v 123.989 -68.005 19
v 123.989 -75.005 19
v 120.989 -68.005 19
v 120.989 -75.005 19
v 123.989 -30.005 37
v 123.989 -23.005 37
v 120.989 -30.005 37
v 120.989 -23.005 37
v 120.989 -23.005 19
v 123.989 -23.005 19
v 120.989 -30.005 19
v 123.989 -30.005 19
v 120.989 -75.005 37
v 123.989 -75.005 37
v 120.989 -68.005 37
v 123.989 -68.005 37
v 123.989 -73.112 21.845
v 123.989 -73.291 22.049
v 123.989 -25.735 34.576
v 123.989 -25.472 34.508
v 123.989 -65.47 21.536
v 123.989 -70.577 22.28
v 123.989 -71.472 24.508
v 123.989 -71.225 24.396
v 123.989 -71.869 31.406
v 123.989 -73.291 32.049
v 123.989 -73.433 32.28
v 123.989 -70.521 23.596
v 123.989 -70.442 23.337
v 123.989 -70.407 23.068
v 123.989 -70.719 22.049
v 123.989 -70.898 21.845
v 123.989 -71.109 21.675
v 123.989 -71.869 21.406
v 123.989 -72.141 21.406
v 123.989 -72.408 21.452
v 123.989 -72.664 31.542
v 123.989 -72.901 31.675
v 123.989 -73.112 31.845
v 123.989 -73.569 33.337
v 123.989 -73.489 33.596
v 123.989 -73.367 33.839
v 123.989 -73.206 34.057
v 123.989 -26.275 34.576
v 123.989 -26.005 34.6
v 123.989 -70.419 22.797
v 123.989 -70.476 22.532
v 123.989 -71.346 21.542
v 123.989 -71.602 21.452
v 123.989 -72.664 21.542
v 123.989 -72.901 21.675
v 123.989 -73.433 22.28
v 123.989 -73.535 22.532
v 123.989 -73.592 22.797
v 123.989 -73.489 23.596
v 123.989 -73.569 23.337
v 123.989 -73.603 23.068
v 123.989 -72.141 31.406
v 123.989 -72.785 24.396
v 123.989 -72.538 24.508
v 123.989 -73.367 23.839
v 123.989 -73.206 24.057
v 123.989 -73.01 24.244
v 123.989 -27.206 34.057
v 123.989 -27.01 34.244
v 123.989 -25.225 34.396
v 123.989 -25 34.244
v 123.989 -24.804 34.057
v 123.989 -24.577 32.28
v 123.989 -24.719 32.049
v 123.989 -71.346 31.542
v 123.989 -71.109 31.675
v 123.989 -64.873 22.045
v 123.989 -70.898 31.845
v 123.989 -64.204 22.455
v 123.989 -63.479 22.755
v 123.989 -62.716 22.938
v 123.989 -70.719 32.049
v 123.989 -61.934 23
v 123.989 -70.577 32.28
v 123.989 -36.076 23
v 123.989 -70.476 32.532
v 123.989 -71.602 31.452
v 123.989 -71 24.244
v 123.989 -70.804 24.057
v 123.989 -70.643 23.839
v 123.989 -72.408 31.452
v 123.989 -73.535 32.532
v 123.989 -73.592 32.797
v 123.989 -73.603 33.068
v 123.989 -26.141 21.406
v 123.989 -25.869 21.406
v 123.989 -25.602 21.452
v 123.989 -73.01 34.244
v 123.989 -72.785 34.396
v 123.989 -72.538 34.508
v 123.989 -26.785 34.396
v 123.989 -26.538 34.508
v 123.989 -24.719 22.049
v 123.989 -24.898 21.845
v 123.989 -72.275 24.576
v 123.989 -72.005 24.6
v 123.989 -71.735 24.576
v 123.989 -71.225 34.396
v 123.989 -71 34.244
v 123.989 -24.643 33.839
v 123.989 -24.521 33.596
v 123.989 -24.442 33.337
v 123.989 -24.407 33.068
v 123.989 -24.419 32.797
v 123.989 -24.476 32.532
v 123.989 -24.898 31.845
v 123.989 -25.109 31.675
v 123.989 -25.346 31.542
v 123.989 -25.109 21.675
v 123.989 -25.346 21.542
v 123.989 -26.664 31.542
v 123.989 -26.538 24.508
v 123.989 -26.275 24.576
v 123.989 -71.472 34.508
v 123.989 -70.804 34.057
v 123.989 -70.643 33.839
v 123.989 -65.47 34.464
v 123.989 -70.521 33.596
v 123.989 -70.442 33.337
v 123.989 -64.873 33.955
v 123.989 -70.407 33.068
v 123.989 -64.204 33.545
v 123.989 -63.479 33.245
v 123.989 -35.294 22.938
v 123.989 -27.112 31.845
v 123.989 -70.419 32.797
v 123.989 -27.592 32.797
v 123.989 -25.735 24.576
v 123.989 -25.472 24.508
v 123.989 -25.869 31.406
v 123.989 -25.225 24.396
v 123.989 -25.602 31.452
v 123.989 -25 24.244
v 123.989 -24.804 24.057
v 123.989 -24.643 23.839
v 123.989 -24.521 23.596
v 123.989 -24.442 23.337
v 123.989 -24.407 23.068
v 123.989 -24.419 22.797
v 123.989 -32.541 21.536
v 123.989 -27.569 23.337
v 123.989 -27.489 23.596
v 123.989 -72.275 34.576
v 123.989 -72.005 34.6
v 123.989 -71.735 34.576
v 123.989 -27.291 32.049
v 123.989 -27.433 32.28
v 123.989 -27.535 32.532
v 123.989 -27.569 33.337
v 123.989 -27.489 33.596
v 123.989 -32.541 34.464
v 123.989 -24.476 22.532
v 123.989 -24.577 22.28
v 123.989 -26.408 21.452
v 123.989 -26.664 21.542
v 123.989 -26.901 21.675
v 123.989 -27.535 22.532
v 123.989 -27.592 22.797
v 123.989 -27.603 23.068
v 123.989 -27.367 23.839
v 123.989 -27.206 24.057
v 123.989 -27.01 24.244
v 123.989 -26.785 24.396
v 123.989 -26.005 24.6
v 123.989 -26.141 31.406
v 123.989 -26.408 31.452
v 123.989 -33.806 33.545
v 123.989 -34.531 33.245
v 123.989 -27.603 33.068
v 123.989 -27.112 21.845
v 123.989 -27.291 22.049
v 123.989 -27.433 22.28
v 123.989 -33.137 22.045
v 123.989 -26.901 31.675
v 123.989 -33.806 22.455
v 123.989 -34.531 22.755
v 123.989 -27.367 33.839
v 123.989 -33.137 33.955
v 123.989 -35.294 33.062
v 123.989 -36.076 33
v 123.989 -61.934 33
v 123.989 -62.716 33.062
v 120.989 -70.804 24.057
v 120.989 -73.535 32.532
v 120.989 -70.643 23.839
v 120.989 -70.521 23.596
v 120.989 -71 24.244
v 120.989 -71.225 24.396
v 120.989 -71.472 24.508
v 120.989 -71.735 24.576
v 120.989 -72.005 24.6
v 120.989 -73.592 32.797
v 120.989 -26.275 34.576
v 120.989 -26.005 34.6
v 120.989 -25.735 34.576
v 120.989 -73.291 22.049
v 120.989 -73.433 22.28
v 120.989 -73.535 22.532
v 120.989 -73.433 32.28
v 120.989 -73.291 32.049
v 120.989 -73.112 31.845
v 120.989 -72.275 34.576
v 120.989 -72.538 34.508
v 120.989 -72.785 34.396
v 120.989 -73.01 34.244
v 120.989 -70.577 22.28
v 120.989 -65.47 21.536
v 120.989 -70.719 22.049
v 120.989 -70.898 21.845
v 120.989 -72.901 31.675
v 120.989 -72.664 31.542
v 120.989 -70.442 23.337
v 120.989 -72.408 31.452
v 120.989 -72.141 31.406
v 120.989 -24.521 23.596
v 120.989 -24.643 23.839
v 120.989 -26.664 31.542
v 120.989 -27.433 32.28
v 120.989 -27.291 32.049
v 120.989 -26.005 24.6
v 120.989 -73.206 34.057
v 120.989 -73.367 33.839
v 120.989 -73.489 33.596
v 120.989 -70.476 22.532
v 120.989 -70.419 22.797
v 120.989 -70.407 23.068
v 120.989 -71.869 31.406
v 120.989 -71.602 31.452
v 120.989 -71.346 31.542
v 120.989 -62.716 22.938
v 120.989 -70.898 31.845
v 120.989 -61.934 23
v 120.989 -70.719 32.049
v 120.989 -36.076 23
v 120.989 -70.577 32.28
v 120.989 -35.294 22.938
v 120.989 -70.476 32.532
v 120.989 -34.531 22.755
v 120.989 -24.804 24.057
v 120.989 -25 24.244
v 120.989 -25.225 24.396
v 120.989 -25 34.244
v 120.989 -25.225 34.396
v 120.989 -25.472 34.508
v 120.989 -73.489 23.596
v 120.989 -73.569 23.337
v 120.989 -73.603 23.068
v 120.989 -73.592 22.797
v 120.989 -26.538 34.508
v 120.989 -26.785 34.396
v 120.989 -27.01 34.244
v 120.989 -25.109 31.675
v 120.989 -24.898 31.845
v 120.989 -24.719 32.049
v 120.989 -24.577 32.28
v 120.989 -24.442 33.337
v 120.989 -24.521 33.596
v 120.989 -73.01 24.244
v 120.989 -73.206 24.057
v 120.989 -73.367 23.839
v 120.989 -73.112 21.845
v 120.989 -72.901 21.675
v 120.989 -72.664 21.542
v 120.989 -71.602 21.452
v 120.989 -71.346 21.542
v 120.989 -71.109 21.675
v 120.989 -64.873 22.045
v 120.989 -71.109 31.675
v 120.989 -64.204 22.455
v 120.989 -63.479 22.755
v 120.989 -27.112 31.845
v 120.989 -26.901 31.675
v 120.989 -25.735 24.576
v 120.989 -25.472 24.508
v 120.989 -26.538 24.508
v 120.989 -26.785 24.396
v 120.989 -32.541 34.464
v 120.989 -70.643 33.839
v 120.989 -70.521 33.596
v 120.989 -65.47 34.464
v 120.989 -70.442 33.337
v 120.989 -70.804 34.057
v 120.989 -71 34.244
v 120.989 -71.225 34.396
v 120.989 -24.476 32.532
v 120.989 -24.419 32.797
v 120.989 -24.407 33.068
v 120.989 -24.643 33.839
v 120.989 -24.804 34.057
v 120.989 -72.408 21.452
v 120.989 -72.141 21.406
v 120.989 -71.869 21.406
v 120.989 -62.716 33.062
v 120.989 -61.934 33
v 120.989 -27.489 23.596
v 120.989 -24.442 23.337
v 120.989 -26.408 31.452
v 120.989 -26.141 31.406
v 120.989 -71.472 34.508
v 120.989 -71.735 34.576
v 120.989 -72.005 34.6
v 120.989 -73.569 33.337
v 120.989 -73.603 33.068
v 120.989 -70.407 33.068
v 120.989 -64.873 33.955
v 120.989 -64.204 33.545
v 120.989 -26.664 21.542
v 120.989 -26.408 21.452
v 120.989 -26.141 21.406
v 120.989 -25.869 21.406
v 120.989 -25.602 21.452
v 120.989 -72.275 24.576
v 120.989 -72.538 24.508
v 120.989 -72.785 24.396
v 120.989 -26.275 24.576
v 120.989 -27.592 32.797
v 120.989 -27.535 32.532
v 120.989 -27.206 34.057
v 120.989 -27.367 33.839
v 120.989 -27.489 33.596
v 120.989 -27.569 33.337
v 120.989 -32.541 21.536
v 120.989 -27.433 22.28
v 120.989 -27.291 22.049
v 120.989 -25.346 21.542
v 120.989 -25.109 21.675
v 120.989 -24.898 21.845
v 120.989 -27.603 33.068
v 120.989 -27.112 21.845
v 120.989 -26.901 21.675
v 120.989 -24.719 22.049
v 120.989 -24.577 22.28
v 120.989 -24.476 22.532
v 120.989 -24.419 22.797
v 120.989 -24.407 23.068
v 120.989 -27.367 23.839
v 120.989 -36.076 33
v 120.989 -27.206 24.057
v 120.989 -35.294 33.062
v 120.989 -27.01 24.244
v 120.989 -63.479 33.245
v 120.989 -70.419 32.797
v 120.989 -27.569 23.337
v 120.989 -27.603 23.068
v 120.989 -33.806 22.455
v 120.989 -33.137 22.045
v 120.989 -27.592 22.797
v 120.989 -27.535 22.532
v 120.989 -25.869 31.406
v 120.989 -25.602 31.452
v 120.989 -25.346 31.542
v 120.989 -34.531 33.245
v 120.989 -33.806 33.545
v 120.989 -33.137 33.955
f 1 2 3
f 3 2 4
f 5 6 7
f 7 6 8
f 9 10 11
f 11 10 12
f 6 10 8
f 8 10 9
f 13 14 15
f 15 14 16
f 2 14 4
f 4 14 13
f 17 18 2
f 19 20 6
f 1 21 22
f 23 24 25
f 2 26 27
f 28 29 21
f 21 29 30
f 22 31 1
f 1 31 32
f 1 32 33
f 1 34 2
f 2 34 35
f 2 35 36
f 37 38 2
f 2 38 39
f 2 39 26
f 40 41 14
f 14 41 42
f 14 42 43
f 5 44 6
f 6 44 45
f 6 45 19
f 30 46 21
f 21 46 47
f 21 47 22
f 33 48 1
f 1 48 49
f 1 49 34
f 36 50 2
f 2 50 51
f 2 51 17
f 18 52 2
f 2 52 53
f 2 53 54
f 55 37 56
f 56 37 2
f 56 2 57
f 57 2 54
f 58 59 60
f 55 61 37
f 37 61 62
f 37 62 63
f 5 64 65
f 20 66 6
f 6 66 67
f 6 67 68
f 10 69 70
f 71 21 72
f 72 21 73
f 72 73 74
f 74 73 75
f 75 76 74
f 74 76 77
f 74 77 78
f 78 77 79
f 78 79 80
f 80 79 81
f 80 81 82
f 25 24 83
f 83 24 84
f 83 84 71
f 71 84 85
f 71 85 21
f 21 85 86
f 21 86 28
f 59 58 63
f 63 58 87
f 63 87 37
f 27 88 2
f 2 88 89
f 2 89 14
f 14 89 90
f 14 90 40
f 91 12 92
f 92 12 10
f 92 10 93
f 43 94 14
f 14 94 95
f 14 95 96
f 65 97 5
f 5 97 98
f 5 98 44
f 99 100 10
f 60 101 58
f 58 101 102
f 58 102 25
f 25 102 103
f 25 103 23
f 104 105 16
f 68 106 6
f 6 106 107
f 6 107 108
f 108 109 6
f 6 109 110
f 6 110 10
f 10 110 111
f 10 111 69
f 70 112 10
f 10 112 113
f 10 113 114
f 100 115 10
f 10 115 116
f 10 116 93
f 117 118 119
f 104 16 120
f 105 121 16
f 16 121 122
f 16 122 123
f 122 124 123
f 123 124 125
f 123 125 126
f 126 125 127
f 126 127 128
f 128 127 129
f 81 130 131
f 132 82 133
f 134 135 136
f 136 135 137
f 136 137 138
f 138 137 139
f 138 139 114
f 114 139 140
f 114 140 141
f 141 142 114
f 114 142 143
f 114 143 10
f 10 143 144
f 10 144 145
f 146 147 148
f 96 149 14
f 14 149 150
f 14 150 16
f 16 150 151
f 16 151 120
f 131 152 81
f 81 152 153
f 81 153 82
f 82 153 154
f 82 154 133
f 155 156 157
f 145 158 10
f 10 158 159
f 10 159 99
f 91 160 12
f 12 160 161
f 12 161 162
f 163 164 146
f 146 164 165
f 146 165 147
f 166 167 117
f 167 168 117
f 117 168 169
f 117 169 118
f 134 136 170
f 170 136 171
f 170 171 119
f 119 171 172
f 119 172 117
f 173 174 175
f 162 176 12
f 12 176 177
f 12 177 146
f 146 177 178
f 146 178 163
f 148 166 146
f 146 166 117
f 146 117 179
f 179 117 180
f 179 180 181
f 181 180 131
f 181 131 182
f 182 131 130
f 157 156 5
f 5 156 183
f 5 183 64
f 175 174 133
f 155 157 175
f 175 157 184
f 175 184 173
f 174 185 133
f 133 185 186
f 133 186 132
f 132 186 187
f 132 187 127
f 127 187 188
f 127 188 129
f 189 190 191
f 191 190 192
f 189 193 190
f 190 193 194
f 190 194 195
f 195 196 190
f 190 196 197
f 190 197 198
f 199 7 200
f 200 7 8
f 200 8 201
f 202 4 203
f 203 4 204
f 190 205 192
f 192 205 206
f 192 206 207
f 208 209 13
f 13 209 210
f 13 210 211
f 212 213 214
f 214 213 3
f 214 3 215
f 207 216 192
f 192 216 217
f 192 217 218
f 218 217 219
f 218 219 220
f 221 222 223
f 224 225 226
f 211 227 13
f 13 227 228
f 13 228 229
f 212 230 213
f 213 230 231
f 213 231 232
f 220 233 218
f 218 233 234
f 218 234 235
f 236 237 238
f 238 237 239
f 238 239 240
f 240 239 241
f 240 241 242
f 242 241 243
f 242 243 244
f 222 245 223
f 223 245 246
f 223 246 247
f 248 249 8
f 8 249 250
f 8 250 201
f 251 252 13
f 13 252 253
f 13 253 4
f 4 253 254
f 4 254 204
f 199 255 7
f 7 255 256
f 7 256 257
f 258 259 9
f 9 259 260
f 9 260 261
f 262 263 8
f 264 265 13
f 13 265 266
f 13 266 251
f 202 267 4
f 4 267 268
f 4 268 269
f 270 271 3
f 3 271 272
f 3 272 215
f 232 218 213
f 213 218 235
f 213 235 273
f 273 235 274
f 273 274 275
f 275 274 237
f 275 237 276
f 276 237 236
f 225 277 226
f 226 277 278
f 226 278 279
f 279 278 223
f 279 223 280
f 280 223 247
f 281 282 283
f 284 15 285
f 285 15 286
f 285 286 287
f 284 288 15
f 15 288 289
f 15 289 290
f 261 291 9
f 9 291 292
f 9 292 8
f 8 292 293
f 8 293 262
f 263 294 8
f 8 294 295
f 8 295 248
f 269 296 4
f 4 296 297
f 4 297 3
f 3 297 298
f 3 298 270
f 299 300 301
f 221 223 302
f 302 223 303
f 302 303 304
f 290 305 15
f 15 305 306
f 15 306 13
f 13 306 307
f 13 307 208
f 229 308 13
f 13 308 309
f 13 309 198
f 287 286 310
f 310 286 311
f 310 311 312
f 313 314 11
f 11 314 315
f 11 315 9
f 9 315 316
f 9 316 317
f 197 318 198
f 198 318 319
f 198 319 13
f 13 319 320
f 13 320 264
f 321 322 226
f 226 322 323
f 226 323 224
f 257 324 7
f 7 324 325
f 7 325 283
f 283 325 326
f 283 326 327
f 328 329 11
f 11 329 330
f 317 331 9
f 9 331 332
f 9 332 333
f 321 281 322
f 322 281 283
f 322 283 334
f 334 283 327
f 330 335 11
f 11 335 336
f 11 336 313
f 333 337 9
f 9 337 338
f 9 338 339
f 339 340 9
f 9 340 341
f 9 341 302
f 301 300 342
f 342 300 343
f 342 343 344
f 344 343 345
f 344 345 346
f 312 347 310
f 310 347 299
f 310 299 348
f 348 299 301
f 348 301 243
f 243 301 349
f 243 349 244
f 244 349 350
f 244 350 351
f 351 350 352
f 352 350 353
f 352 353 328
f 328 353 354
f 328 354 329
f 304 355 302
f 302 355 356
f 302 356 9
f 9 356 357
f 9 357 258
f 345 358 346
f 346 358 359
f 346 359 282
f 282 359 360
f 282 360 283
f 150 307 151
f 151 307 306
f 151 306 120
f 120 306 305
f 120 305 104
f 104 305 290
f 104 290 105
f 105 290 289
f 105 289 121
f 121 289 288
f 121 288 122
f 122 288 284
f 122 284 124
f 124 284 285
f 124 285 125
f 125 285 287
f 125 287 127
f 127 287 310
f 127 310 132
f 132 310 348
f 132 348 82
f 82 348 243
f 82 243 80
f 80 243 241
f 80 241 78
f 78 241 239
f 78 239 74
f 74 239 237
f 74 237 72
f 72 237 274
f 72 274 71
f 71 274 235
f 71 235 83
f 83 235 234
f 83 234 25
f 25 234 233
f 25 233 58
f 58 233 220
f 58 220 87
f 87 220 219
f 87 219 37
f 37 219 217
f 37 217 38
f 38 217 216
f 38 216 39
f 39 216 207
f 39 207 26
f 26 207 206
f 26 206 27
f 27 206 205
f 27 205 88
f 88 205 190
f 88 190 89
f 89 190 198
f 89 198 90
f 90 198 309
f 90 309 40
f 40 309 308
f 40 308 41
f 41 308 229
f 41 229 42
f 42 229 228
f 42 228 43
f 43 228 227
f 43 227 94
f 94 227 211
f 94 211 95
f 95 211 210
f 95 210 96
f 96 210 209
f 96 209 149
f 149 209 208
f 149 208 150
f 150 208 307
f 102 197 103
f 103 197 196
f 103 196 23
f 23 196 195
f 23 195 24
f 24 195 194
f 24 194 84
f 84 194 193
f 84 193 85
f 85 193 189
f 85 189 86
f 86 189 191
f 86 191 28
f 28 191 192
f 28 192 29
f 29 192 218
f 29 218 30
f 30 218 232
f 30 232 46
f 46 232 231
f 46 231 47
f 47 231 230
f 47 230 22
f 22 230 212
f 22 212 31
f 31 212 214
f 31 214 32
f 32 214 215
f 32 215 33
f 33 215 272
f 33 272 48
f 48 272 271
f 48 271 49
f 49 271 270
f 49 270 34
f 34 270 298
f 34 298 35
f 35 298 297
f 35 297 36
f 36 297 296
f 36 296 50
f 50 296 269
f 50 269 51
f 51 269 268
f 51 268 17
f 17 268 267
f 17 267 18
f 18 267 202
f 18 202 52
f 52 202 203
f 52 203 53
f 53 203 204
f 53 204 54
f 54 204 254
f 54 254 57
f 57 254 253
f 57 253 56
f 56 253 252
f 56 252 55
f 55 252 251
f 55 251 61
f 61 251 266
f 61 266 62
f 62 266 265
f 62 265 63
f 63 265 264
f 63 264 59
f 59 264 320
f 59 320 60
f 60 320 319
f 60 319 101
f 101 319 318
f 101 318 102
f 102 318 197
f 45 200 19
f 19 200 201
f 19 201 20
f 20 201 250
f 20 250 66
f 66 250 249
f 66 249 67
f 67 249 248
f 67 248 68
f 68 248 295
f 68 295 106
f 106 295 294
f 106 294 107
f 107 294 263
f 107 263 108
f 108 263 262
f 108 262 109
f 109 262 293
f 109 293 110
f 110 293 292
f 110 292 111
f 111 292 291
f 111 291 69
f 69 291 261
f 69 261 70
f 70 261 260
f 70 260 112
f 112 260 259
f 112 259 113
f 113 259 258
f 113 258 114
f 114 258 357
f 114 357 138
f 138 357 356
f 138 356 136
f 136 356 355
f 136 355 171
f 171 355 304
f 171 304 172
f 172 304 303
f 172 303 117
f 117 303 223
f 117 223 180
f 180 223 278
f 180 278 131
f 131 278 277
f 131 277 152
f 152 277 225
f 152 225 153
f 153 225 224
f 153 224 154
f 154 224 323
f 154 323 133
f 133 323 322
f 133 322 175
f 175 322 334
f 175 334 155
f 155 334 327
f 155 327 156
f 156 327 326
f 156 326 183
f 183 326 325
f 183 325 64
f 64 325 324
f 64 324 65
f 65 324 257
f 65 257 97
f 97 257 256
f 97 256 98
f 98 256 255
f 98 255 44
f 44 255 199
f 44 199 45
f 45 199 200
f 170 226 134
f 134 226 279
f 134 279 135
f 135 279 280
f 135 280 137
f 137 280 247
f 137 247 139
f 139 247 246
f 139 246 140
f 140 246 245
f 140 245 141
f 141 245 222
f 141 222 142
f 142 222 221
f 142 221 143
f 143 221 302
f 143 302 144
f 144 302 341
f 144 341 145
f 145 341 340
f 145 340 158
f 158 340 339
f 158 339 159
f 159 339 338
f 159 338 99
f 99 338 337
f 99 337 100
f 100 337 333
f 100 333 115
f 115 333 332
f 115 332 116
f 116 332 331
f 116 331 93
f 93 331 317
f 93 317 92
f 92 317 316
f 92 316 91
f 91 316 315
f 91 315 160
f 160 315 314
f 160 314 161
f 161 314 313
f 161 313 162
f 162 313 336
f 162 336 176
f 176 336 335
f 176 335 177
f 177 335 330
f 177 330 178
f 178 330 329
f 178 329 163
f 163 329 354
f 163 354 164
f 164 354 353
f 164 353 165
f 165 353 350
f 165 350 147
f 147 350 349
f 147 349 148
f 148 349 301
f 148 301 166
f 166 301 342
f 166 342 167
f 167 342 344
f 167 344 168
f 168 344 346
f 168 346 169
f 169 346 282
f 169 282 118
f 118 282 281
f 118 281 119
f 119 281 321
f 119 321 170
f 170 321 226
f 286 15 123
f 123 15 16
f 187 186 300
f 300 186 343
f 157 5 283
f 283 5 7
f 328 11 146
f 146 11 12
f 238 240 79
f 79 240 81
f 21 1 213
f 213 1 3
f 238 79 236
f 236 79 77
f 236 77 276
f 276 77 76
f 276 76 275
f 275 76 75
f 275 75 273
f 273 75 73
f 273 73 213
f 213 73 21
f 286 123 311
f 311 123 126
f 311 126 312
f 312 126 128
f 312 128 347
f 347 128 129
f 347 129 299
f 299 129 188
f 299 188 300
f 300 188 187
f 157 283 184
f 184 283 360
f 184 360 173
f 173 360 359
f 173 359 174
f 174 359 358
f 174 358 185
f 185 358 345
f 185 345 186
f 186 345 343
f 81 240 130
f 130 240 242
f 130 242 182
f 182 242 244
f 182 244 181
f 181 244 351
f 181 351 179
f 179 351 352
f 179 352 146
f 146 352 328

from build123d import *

# Parameters (mm, degrees)
SKETCH1_W           = 52.000002935
SKETCH1_H           = 18.000001088
SKETCH1_R           = 1.599502817
BOSS_EXTRUDE1_DEPTH = 2.999998629
SKETCH2_W           = 4
SKETCH2_H           = 30
CUT_EXTRUDE1_DEPTH  = 84.68851942
FILLET1_R           = 5


with BuildPart() as part:
    # Sketch1 → Boss-Extrude1 (new body)
    with BuildSketch(Plane(origin=(120.988696814, 0, 0), x_dir=(0, -1, 0), z_dir=(-1, 0, 0))):
        with Locations((49.005120062, 27.999999933)):
            Rectangle(SKETCH1_W, SKETCH1_H)
        with Locations(Location((26.005118371, 32.999999236, 0), (0, 0, 90))):
            Circle(SKETCH1_R, mode=Mode.SUBTRACT)
        with Locations(Location((26.005118371, 23.000000115, 0), (0, 0, 90))):
            Circle(SKETCH1_R, mode=Mode.SUBTRACT)
        with Locations(Location((72.005118202, 32.999999236, 0), (0, 0, 90))):
            Circle(SKETCH1_R, mode=Mode.SUBTRACT)
        with Locations(Location((72.005118202, 23.000000115, 0), (0, 0, 90))):
            Circle(SKETCH1_R, mode=Mode.SUBTRACT)
    extrude(amount=-BOSS_EXTRUDE1_DEPTH)

    # Sketch2 → Cut-Extrude1 (cut, through all)
    with BuildSketch(Plane.ZY.offset(-120.988696814)):
        with Locations((35.000000477, -49.005120061)):
            Rectangle(SKETCH2_W, SKETCH2_H)
        Polygon((33.000000477, -34.005120061), (37.000000477, -34.005120061), (37.000000477, -30.005120061), align=None)
        Polygon((22.999999389, -34.005120061), (18.999999389, -30.005120061), (18.999999389, -34.005120061), align=None)
        with Locations((20.999999389, -49.005120061)):
            Rectangle(SKETCH2_W, SKETCH2_H)
        Polygon((22.999999389, -64.005120061), (18.999999389, -64.005120061), (18.999999389, -68.005120061), align=None)
        Polygon((37.000000477, -68.005120061), (37.000000477, -64.005120061), (33.000000477, -64.005120061), align=None)
    extrude(amount=-CUT_EXTRUDE1_DEPTH, mode=Mode.SUBTRACT)

    # Fillet1
    fillet1_edges = [part.edges().sort_by_distance(p)[0] for p in [
        (122.488696128, -34.005120061, 22.999999389),
        (122.488696128, -64.005120061, 22.999999389),
        (122.488696128, -64.005120061, 33.000000477),
        (122.488696128, -34.005120061, 33.000000477),
    ]]
    fillet(fillet1_edges, radius=FILLET1_R)


solid = part.part
